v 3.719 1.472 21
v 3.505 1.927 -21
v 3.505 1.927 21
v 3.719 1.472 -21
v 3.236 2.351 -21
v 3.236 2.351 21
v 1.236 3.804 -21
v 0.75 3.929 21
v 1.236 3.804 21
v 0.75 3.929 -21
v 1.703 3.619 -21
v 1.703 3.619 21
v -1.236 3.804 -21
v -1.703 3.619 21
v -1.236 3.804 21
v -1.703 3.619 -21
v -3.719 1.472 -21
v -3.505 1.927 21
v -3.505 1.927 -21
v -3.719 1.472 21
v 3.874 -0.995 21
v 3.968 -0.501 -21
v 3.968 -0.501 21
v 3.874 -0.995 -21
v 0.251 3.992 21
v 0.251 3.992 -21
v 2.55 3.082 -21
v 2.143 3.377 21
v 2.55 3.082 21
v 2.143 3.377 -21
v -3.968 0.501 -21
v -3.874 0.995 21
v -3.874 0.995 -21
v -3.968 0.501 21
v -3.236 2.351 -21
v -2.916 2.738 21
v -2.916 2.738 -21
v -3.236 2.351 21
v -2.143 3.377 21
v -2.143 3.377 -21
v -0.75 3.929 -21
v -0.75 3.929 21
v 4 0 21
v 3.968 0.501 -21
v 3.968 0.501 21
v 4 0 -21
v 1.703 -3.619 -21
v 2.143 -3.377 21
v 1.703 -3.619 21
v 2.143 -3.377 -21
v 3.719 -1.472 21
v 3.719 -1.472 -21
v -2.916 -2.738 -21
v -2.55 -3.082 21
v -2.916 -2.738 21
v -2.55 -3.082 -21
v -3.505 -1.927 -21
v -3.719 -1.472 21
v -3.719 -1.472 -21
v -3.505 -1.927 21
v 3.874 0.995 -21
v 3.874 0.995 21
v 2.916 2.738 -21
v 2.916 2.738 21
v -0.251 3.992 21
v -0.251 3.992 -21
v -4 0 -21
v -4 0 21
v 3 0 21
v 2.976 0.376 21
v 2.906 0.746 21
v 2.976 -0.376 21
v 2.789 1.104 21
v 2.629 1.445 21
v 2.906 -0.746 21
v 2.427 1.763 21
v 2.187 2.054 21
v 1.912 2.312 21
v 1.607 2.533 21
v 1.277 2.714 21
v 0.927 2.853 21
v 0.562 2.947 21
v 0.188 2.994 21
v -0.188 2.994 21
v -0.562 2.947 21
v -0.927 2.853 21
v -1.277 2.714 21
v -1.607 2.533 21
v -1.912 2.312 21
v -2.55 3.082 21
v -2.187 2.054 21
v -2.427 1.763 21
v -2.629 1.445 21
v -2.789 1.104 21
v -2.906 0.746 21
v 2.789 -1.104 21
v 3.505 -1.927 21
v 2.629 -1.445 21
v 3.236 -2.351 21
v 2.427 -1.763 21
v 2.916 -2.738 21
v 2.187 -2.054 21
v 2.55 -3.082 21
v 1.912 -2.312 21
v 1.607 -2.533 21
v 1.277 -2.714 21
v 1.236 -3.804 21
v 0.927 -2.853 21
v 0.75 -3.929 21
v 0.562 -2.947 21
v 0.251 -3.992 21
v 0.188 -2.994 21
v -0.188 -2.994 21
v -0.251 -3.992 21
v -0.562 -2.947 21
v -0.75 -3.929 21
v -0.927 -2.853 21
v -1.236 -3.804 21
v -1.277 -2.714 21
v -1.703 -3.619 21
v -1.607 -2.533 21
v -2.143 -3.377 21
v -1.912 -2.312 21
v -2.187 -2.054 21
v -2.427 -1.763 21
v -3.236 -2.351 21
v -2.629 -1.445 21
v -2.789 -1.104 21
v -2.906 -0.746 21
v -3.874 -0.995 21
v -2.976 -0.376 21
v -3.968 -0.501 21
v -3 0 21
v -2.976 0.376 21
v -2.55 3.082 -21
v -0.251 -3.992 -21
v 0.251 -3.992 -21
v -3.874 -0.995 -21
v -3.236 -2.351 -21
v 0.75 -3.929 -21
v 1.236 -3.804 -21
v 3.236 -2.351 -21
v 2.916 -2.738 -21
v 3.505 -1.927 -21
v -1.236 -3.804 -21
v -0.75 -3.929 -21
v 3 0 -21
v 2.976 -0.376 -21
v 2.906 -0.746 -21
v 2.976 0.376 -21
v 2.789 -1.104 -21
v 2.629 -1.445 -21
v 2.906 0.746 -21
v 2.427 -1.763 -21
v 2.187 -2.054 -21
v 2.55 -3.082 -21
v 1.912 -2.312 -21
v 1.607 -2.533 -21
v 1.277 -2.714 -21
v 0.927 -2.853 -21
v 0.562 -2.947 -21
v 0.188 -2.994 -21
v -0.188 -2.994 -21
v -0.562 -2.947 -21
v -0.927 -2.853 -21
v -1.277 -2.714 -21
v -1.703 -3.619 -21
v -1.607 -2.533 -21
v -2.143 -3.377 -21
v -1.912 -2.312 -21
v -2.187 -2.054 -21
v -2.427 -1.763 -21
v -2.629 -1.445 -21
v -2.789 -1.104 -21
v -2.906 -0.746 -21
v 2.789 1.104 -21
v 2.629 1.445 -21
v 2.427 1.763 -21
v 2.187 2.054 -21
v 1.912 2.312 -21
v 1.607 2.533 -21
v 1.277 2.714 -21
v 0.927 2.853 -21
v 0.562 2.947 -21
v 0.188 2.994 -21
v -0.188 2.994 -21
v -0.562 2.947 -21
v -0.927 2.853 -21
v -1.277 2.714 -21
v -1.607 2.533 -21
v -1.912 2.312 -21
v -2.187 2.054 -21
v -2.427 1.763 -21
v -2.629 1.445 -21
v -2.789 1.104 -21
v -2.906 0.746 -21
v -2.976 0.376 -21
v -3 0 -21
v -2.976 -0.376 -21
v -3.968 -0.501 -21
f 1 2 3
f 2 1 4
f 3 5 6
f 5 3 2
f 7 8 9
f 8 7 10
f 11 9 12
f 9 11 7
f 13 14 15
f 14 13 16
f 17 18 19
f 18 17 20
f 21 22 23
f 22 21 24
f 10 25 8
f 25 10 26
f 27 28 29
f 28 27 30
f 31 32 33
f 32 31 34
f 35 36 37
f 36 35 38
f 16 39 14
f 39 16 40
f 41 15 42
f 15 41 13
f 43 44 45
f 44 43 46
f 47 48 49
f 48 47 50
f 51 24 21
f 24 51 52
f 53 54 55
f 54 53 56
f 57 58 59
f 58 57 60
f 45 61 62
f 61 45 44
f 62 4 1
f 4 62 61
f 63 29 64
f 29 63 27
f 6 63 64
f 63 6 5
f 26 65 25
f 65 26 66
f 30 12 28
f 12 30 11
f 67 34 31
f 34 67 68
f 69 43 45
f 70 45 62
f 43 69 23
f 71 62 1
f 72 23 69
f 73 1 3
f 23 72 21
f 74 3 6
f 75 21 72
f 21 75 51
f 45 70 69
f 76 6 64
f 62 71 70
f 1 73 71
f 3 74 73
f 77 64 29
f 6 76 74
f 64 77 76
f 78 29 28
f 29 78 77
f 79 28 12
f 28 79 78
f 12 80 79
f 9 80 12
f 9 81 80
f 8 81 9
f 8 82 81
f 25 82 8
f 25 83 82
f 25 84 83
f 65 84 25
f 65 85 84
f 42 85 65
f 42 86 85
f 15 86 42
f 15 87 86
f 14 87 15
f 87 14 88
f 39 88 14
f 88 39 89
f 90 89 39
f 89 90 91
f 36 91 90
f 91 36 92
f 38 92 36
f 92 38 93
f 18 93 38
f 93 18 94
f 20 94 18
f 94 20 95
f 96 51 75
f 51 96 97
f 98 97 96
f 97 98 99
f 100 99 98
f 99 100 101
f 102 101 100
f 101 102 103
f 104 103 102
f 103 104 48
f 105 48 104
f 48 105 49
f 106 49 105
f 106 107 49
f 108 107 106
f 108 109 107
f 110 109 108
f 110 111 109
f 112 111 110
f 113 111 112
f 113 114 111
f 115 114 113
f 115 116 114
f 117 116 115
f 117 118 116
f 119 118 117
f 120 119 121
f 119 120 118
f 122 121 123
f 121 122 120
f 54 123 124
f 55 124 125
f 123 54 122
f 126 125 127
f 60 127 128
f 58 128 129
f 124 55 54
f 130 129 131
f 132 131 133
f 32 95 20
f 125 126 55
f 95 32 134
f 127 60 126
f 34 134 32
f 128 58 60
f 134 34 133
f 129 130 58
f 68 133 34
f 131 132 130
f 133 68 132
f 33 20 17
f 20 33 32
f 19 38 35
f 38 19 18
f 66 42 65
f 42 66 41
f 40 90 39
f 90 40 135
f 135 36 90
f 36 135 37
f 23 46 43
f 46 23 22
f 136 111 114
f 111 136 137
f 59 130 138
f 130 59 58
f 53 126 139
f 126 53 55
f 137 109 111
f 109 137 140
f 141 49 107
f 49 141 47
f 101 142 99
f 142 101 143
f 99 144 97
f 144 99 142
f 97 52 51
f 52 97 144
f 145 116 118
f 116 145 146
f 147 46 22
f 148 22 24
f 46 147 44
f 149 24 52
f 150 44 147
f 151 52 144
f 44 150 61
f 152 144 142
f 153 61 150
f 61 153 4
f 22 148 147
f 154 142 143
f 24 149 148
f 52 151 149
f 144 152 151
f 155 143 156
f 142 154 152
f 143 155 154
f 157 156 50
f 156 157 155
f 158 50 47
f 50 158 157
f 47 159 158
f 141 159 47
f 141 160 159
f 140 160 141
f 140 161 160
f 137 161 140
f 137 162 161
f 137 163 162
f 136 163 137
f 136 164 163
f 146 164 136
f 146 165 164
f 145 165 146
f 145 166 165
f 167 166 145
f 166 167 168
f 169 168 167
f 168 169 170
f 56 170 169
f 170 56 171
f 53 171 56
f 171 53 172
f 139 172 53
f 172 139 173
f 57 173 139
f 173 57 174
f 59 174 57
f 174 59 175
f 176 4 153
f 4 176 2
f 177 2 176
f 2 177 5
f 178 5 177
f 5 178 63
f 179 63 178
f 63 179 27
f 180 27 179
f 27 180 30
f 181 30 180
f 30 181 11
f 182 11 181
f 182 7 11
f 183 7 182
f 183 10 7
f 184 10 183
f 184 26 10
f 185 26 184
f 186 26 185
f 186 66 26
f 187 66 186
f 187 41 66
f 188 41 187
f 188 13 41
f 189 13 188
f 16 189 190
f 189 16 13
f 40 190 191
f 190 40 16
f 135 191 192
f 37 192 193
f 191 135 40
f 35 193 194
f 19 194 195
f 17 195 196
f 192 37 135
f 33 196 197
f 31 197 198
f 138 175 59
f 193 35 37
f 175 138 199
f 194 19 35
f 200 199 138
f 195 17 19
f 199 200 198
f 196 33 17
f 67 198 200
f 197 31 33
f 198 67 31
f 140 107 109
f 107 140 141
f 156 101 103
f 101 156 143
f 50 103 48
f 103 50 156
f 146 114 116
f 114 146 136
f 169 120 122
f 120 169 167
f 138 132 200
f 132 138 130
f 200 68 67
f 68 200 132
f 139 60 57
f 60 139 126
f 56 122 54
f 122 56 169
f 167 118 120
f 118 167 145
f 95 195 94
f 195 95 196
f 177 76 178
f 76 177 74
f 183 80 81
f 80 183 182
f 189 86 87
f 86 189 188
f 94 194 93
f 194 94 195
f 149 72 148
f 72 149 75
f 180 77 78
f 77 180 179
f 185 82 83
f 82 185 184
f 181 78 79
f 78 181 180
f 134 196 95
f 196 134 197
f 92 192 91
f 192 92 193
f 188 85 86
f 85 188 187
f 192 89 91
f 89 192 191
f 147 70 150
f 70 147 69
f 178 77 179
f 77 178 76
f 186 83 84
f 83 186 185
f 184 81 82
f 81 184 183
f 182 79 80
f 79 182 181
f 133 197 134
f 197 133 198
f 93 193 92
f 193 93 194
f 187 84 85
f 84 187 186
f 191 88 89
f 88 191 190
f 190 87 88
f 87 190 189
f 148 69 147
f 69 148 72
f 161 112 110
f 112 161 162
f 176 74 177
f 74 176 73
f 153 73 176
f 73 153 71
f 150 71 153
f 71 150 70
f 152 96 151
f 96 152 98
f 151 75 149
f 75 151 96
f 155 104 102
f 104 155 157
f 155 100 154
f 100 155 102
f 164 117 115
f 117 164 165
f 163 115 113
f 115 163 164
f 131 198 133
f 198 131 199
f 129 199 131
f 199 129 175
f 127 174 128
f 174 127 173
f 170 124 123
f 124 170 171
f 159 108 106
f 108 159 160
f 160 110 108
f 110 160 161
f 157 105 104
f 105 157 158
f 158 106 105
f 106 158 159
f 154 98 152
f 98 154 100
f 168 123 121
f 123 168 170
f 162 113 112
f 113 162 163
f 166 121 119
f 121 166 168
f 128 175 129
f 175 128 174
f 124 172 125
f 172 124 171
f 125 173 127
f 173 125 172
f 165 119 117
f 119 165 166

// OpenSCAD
$fn = 50;


difference() {
	union() {
		translate(v = [0, 0, -21.0000000000]) {
			cylinder(h = 42, r = 4.0000000000);
		}
	}
	union() {
		translate(v = [0, 0, -100.0000000000]) {
			cylinder(h = 200, r = 3);
		}
	}
}
